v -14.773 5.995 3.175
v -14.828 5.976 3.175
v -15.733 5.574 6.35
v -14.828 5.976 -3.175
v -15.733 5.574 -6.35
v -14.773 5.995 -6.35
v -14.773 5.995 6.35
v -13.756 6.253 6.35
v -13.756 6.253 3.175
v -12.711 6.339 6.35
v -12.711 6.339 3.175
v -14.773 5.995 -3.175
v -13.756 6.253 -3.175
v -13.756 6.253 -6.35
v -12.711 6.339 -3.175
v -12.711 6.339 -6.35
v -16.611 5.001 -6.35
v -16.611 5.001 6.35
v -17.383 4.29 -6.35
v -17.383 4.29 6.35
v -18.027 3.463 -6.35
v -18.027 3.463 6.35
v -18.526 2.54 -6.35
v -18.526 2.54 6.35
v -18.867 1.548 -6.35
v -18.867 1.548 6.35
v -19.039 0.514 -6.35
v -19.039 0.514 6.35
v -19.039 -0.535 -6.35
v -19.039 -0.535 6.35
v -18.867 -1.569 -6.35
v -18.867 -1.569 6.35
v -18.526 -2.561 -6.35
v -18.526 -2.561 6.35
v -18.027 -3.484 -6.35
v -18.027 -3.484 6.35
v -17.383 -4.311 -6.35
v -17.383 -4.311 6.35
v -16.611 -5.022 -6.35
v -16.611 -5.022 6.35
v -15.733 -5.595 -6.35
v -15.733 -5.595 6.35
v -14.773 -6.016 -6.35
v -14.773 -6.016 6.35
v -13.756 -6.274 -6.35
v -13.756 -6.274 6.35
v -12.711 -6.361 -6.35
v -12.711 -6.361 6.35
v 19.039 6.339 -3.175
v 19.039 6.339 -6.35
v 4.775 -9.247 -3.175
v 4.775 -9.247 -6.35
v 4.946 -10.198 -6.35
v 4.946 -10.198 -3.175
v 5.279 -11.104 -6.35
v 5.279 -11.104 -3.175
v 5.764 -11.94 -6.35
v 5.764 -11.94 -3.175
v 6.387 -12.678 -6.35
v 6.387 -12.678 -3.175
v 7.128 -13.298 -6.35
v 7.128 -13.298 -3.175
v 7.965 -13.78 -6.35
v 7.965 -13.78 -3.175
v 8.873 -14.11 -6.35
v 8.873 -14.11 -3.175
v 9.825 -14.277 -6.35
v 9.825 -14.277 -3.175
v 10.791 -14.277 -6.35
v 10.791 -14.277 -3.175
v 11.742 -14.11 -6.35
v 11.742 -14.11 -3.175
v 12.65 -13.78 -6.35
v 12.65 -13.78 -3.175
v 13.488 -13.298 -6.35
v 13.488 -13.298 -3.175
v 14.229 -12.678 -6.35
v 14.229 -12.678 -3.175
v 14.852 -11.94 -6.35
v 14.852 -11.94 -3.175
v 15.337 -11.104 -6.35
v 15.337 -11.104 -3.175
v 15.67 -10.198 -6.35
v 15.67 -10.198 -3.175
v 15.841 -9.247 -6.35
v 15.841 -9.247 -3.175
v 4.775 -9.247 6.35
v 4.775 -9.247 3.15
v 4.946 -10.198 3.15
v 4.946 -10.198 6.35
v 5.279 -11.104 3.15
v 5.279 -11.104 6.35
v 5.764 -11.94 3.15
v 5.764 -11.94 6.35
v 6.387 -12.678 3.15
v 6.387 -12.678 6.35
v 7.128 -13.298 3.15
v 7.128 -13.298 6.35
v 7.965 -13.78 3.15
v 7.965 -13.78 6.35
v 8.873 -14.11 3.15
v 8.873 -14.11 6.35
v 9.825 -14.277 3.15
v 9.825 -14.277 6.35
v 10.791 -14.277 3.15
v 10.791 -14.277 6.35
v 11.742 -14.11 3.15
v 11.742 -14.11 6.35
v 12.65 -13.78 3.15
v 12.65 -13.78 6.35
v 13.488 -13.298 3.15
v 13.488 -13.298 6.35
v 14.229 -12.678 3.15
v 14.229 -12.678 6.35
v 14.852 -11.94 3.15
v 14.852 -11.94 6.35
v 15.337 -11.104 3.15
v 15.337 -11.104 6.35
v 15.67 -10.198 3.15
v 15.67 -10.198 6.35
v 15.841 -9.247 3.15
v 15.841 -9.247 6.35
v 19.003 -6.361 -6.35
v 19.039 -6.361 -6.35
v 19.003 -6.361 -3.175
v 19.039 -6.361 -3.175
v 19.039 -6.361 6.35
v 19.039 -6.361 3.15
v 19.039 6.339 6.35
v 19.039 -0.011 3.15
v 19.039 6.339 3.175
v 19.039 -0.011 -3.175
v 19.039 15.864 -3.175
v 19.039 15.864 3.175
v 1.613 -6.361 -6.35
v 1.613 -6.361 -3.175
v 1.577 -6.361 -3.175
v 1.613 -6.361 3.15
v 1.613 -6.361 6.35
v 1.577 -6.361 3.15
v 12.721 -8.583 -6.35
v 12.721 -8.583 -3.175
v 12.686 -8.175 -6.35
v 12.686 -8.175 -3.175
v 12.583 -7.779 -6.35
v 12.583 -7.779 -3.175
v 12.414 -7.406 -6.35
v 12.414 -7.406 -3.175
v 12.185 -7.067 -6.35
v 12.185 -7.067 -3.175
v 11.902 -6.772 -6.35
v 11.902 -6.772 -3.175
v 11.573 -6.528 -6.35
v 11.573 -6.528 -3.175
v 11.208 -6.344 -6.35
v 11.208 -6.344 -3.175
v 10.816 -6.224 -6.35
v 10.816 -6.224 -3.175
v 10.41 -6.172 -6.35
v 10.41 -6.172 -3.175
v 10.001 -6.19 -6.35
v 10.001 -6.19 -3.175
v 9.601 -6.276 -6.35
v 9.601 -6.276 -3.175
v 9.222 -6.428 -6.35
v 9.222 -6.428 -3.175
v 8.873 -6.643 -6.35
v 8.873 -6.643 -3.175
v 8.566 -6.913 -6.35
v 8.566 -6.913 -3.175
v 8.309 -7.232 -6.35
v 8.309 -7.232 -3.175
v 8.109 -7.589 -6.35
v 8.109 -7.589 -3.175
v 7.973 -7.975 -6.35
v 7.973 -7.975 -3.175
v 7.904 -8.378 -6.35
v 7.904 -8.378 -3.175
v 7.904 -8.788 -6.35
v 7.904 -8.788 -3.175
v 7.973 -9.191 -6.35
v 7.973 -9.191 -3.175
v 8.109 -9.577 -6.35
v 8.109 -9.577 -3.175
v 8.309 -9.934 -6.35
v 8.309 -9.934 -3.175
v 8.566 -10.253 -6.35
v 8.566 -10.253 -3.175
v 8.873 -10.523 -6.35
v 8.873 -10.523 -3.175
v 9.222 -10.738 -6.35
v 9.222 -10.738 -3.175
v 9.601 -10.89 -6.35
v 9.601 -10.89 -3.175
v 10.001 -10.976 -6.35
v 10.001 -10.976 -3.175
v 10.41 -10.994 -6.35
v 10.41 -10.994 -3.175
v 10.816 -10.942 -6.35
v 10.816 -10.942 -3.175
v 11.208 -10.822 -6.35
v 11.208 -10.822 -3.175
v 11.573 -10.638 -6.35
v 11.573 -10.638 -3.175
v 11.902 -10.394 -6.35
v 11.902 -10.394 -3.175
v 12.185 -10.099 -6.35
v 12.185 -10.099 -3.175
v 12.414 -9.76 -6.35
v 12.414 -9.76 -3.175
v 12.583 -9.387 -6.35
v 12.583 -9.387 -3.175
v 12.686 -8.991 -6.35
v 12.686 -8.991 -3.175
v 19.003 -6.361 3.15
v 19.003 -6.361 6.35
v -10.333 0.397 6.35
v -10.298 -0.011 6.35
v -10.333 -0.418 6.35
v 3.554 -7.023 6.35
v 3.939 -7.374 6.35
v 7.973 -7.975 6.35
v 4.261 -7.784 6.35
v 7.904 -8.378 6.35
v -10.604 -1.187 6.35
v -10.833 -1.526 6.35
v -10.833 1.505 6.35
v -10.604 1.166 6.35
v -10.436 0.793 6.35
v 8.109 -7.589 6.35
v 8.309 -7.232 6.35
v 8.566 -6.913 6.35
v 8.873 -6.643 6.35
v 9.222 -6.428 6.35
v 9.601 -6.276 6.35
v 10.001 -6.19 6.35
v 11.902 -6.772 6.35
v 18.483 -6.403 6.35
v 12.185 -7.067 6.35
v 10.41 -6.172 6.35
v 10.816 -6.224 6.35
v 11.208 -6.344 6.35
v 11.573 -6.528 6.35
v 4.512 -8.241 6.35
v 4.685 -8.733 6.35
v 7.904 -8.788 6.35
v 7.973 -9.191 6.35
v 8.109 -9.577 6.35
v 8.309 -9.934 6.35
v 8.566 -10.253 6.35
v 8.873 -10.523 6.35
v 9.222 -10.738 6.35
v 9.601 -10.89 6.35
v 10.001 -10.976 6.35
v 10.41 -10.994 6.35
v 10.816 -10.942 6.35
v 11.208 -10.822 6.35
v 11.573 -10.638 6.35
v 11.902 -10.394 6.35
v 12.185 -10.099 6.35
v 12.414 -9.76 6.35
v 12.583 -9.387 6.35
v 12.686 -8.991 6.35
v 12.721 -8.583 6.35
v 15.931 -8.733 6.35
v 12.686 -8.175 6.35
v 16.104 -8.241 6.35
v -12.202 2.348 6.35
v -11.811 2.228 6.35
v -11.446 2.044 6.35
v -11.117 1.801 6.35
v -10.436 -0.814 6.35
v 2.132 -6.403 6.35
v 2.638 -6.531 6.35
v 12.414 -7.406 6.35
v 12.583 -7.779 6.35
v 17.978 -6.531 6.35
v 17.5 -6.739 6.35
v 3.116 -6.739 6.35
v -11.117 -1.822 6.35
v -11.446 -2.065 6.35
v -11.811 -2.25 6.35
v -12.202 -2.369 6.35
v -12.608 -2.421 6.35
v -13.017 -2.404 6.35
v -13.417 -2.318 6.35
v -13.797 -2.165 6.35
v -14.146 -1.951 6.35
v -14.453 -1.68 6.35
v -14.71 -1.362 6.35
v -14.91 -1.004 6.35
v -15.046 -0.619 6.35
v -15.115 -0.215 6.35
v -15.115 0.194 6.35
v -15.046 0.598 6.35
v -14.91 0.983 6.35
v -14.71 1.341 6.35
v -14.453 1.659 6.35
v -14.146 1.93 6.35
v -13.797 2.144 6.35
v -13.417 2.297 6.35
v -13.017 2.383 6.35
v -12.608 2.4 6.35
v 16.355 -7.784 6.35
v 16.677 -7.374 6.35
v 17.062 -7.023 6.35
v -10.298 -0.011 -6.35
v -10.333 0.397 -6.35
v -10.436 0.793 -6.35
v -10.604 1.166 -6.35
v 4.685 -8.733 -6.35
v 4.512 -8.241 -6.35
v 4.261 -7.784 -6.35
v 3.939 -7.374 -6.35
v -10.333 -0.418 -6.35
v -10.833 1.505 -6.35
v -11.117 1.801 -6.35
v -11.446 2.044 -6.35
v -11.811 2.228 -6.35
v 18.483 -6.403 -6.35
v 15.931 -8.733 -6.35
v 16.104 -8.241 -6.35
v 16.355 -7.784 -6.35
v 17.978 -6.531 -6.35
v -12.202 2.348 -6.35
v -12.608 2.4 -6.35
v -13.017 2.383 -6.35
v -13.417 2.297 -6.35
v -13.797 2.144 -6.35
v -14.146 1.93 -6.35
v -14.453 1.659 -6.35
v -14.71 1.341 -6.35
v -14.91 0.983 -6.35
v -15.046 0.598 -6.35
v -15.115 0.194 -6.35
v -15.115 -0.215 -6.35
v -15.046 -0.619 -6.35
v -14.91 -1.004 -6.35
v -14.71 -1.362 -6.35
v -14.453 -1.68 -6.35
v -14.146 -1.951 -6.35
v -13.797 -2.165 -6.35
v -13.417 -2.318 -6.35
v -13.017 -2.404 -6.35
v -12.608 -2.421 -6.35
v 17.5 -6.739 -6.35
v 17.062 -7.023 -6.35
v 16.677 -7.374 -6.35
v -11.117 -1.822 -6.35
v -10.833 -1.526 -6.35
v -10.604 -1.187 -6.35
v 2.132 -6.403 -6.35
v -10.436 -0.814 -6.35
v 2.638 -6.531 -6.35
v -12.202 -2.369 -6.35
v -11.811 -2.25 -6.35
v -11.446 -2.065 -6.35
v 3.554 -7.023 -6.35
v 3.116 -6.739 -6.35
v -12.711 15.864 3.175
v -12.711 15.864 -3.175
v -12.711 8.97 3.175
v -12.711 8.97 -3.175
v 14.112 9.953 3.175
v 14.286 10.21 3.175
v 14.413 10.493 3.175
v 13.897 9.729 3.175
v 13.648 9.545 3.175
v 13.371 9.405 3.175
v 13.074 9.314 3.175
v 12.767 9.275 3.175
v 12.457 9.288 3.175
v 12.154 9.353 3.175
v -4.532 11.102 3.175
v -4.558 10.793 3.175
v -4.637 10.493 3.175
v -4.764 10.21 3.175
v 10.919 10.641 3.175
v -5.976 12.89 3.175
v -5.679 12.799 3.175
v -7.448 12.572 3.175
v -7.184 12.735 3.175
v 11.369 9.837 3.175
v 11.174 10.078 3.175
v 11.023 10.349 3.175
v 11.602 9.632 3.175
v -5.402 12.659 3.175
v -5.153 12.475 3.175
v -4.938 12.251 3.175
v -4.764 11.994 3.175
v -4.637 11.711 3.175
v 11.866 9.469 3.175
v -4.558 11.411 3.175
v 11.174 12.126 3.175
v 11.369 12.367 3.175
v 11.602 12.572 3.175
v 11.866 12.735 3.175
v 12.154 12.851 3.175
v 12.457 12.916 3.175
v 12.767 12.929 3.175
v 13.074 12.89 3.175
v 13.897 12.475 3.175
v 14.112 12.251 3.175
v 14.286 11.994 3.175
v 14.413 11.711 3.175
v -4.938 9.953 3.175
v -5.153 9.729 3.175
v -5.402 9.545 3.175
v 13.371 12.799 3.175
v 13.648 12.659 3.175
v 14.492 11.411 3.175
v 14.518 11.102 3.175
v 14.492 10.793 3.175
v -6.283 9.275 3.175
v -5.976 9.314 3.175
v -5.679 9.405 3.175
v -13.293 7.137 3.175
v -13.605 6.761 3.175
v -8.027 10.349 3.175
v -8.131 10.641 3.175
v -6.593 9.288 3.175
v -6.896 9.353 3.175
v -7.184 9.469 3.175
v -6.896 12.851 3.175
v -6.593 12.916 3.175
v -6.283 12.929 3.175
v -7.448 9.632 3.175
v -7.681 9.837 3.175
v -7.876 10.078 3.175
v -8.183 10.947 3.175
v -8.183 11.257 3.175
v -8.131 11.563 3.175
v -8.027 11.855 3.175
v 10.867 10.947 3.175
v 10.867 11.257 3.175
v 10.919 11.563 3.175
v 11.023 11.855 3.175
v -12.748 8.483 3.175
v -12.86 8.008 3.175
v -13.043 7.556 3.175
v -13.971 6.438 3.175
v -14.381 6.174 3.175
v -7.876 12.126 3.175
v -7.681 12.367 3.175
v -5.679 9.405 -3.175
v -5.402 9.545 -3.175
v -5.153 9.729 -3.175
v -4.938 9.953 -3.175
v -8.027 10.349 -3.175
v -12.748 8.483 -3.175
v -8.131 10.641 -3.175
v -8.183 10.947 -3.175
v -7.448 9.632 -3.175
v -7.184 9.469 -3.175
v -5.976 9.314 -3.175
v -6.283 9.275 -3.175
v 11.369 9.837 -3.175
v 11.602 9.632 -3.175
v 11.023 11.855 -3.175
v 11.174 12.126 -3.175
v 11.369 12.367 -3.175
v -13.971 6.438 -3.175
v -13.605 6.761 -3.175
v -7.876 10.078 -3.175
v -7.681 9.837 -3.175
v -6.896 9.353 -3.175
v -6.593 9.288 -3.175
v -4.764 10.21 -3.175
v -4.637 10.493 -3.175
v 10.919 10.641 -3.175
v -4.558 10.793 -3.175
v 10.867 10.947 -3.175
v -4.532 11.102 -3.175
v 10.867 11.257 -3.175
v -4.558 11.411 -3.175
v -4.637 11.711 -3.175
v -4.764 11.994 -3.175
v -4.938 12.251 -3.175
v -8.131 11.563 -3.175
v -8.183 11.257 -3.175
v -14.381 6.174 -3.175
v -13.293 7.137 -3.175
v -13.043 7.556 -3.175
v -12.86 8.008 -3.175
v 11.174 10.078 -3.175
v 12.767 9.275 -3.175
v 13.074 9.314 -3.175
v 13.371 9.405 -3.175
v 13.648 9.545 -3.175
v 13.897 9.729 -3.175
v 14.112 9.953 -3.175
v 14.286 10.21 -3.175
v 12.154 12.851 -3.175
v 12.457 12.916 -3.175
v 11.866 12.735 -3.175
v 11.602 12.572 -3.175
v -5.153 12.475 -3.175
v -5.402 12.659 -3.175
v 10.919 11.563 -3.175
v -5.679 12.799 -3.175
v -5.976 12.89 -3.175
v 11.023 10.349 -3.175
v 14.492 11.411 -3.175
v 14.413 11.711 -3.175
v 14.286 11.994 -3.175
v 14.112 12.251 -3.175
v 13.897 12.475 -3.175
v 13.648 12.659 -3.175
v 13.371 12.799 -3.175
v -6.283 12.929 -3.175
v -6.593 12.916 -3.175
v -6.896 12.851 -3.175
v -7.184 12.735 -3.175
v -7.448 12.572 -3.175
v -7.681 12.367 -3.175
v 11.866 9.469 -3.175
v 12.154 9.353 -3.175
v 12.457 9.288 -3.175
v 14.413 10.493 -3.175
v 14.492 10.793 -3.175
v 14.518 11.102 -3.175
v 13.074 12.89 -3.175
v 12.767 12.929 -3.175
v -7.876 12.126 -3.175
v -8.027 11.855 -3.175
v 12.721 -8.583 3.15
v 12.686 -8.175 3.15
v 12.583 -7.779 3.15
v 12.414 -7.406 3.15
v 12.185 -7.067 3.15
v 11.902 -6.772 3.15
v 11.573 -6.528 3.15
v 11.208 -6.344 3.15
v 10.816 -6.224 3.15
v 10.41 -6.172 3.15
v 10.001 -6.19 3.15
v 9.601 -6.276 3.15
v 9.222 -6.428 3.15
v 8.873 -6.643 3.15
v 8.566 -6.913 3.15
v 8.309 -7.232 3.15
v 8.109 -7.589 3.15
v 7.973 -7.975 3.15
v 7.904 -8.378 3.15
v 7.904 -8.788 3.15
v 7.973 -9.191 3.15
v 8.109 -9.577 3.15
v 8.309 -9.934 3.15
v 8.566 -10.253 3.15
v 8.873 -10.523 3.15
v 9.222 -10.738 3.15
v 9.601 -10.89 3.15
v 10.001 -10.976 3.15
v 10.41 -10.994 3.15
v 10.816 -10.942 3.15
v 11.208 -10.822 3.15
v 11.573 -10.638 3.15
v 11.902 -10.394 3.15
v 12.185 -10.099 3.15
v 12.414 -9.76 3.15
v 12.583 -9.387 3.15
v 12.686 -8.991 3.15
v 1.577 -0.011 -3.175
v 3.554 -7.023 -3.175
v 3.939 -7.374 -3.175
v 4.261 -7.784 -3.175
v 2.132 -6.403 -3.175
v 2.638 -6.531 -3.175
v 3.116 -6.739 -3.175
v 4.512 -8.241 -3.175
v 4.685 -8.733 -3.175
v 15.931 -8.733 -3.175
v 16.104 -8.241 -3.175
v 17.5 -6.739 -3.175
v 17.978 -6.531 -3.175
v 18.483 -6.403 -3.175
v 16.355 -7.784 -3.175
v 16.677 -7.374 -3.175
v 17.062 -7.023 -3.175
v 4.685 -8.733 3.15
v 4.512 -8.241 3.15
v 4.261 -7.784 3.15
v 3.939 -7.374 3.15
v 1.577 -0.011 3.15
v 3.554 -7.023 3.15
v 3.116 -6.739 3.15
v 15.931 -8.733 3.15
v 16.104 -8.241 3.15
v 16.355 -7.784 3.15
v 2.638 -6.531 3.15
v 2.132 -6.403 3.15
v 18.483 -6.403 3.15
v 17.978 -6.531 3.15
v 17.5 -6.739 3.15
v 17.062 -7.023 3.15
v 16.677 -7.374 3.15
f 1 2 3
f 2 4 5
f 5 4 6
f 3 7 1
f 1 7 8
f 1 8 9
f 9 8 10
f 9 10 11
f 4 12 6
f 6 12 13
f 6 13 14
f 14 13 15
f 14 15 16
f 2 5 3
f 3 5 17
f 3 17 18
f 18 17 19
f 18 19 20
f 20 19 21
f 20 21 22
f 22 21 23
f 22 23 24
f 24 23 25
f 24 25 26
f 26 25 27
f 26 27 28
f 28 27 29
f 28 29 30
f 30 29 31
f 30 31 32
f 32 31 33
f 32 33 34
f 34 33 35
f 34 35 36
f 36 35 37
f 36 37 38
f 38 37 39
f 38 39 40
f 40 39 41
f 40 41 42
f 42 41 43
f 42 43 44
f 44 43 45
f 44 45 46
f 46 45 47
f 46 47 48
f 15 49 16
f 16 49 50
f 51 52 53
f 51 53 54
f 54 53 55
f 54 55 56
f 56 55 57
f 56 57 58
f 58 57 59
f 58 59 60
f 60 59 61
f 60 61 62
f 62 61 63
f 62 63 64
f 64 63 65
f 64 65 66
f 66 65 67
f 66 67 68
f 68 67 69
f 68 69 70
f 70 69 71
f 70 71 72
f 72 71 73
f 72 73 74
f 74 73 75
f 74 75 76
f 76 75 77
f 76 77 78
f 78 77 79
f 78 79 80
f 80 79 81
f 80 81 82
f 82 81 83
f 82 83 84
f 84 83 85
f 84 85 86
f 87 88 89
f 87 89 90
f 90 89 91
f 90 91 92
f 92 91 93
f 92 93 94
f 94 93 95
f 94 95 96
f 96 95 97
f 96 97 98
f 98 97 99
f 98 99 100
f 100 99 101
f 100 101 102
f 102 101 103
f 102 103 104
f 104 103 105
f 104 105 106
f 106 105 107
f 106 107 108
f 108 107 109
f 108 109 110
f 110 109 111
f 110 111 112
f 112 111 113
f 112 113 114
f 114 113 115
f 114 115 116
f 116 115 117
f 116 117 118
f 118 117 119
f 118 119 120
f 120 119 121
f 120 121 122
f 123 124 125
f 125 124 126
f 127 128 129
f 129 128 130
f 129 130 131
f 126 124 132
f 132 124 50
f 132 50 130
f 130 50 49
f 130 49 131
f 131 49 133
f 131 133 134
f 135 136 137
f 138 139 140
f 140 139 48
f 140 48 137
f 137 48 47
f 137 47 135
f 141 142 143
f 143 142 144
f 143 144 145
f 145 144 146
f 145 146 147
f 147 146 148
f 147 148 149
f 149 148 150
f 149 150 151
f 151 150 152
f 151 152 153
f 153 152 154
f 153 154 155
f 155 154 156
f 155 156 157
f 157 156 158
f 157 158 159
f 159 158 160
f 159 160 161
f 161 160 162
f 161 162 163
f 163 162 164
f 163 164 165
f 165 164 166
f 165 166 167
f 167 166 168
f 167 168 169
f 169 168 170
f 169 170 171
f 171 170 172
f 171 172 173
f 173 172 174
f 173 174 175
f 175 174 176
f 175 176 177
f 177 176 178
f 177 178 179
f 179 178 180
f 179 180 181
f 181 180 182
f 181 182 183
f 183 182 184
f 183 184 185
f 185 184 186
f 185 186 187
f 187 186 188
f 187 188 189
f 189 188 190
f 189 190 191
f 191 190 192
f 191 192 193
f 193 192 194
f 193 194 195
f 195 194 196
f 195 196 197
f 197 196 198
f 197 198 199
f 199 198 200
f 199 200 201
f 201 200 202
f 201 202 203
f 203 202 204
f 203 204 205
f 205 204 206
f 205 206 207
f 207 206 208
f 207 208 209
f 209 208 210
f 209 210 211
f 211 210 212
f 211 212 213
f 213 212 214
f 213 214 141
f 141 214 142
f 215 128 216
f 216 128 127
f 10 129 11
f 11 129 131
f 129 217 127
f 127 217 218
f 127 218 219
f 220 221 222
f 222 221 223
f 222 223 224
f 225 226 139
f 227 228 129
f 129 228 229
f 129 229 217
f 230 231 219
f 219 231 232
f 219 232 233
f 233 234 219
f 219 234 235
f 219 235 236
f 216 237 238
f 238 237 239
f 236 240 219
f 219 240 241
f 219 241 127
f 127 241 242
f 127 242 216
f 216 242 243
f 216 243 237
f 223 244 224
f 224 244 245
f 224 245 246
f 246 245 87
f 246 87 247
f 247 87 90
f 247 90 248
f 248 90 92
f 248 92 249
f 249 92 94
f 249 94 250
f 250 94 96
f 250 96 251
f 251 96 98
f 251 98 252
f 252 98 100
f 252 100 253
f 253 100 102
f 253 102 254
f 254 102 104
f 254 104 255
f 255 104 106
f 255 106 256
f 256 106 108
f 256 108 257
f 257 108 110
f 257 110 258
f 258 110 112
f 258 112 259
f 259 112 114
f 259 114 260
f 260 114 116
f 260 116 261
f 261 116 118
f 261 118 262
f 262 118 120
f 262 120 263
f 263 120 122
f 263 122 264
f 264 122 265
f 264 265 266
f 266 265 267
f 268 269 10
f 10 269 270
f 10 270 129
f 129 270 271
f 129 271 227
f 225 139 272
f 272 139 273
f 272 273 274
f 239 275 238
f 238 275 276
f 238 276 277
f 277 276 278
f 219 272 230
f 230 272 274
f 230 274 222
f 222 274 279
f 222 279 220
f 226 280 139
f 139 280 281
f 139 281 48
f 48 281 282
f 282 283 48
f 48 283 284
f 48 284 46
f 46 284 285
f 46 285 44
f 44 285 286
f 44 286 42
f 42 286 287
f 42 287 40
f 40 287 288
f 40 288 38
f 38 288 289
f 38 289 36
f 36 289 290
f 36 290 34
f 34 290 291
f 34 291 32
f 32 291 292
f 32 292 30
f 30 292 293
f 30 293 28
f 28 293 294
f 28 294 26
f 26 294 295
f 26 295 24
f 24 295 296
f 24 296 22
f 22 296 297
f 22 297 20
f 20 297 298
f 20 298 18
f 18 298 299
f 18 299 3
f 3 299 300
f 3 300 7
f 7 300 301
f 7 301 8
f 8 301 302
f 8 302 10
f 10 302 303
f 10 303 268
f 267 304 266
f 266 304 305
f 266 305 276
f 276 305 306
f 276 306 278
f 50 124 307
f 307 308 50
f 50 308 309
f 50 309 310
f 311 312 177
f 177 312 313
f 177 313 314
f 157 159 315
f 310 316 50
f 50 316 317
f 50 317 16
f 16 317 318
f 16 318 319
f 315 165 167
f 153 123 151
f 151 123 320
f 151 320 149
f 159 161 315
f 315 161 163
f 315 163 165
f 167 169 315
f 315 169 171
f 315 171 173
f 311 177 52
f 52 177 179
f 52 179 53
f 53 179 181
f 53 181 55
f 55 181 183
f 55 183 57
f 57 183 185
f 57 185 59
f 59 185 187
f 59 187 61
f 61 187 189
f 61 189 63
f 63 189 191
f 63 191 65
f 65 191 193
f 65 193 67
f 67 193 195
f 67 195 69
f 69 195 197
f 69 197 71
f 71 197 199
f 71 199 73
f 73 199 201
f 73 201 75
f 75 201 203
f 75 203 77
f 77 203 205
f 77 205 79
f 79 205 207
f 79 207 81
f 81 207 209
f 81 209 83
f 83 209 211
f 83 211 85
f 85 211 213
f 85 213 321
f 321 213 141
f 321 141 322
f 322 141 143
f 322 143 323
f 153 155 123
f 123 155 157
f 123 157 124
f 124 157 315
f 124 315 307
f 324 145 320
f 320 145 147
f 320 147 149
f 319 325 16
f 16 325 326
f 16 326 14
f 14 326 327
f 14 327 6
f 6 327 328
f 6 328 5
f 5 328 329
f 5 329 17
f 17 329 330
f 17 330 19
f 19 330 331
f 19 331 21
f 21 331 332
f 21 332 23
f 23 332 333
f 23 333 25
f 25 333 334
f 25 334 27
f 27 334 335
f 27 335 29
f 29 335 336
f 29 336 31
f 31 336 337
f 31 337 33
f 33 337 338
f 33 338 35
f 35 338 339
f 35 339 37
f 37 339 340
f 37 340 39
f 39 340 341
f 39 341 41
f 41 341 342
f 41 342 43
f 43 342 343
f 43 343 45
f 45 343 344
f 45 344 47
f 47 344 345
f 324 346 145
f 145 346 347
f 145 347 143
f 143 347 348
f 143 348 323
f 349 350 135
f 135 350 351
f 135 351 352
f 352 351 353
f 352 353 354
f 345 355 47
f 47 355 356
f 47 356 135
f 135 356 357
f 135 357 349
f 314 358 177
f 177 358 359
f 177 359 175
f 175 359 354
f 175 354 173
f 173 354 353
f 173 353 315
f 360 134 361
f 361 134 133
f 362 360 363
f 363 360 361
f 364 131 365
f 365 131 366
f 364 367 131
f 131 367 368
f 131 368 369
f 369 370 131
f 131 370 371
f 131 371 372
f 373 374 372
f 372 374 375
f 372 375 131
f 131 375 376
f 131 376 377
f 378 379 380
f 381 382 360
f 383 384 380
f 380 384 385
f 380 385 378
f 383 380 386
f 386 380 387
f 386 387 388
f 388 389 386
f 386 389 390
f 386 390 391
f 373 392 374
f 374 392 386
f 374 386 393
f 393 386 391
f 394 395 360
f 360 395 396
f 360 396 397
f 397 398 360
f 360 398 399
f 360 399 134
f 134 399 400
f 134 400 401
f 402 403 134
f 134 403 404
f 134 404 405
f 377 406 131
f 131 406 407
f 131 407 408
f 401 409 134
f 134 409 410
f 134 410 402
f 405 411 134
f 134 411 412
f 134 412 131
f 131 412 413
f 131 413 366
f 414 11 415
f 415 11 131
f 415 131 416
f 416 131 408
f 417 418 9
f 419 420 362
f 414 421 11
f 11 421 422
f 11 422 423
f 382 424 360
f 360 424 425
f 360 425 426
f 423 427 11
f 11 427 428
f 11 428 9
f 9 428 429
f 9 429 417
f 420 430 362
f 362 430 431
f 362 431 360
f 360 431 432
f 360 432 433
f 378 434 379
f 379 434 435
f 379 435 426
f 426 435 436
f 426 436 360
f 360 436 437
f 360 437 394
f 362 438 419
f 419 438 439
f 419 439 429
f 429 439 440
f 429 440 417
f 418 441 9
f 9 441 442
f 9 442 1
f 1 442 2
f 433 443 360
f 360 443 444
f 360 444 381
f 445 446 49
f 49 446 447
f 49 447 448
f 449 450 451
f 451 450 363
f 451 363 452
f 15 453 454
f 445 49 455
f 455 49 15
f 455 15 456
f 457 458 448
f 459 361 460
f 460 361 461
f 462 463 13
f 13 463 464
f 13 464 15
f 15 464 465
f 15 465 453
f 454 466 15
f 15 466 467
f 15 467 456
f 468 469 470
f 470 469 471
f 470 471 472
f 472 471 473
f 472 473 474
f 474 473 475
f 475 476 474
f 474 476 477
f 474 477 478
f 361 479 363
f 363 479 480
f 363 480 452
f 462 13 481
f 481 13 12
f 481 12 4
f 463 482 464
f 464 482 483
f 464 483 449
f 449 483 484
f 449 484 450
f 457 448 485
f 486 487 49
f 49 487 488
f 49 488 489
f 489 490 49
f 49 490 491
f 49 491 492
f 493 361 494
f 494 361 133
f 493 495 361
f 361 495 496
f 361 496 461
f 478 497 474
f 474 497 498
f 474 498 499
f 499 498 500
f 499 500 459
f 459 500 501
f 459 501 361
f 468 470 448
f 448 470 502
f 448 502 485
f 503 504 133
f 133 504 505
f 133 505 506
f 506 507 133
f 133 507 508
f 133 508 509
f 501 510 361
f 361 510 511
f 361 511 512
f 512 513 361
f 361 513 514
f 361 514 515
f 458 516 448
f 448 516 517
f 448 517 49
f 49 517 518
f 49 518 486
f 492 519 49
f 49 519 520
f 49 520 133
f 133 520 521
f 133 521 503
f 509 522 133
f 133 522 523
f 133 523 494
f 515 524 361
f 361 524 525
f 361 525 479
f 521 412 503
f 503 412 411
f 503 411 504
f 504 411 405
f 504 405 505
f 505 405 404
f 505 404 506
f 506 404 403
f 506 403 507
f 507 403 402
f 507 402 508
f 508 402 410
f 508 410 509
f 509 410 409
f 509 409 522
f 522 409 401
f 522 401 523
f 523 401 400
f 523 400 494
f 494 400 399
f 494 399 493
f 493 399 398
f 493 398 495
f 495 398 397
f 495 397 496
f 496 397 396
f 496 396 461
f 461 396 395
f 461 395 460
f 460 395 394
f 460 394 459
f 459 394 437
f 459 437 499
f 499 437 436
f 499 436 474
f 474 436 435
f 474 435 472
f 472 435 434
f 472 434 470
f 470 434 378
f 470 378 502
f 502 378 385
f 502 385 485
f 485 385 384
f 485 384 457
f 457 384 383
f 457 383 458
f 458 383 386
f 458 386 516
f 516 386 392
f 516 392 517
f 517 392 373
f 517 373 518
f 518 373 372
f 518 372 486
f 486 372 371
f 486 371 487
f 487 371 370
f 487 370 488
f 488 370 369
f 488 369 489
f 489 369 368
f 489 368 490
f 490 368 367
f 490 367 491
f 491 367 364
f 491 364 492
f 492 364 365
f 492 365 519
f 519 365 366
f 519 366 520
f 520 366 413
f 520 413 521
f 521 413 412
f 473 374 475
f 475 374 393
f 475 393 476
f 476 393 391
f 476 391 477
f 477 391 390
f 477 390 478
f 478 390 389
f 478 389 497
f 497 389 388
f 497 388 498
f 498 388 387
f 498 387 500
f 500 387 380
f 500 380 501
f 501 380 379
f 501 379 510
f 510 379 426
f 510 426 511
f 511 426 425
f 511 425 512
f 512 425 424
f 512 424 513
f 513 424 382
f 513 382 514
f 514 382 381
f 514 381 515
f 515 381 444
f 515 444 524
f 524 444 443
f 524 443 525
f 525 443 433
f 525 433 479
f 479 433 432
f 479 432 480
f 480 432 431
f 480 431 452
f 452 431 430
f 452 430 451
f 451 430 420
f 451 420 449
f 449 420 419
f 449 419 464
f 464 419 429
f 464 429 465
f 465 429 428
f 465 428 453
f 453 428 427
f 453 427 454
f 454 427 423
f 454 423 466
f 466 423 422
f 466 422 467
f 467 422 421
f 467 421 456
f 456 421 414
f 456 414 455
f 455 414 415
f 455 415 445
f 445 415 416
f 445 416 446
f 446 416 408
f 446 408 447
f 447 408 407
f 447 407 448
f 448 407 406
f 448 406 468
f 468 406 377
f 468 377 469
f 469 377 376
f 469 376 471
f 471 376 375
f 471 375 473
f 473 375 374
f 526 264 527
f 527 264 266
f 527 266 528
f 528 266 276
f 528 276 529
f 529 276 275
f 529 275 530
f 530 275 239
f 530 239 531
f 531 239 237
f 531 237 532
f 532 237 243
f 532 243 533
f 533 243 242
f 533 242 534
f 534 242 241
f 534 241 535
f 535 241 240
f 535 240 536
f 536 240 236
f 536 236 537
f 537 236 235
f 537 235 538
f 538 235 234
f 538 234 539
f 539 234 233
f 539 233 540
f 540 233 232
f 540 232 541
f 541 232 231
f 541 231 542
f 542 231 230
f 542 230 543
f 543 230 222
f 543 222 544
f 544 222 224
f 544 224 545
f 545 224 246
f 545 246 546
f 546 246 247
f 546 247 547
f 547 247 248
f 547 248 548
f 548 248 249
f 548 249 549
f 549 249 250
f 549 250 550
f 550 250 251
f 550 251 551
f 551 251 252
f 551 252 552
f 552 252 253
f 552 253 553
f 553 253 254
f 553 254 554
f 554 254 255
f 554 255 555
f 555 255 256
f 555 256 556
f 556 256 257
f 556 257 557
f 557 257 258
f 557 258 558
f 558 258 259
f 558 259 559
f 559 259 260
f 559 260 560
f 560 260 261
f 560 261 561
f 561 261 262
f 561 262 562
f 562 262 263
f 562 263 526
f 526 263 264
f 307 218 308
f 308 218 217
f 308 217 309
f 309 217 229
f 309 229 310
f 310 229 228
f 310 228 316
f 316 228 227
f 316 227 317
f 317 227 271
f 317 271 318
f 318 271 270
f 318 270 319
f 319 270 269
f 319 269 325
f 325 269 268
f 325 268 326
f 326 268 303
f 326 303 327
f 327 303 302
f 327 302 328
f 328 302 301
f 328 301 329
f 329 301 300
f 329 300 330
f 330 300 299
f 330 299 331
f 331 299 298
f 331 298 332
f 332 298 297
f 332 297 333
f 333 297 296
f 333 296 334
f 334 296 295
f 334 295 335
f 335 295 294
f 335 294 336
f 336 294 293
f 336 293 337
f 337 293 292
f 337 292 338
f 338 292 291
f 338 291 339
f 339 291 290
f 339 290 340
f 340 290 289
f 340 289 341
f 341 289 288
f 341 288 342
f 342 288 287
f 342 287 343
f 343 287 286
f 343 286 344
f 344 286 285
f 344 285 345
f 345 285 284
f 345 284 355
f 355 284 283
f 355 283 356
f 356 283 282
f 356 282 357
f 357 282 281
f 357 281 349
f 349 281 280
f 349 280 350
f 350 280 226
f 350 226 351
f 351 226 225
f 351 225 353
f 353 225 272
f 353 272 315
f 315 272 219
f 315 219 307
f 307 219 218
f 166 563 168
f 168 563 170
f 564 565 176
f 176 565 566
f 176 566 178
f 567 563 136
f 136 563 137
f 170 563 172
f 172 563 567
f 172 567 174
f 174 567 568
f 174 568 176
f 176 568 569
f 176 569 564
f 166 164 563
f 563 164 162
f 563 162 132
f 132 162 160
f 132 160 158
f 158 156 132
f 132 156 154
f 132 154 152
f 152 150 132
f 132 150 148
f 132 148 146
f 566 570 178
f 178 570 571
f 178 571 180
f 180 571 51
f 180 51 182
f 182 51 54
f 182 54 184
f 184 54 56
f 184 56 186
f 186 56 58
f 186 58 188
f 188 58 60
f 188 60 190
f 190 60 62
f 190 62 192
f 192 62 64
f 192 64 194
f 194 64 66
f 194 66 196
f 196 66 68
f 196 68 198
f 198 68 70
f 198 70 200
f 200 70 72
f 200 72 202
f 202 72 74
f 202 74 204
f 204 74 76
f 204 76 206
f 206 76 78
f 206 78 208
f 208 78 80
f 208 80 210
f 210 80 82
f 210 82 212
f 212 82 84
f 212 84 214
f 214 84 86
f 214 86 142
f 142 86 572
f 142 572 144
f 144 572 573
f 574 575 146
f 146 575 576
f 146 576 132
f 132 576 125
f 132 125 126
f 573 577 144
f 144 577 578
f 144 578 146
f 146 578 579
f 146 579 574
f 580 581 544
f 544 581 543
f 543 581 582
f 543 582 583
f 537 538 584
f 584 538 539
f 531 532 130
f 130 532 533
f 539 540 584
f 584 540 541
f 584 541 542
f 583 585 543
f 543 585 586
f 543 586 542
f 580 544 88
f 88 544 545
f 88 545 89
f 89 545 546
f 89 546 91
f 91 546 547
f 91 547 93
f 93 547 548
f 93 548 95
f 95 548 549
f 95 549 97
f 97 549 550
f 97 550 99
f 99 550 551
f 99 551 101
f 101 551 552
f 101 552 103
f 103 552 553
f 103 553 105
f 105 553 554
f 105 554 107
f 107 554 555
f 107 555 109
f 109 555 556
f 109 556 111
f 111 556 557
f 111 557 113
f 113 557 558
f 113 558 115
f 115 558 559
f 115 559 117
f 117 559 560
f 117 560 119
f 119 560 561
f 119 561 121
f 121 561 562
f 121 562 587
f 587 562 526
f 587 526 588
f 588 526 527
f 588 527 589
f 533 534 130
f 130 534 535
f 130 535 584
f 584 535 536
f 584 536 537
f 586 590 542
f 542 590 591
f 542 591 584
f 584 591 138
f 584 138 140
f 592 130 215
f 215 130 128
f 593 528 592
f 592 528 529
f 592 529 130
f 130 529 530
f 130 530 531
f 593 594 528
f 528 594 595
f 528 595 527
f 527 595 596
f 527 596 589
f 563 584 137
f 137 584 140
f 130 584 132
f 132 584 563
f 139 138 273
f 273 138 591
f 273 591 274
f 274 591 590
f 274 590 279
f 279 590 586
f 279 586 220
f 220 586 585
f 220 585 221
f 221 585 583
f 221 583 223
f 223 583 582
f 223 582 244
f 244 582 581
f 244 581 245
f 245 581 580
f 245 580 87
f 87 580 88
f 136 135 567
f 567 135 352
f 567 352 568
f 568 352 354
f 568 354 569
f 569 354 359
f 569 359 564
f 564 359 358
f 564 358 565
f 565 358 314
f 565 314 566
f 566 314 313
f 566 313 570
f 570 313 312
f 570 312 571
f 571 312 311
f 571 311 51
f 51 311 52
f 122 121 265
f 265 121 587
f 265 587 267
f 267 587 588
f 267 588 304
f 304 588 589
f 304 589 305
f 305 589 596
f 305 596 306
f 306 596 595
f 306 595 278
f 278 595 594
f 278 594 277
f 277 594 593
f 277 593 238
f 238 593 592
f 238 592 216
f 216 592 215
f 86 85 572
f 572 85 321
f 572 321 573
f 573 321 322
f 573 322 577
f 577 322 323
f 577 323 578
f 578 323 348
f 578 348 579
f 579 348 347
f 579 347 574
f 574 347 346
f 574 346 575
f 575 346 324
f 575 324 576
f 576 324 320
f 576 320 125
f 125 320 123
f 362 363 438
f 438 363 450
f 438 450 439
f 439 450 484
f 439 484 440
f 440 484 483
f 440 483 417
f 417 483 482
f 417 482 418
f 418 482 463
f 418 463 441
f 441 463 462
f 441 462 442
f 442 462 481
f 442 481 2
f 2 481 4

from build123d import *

# Parameters (mm, degrees)
SKETCH1_W                             = 38.1
SKETCH1_H                             = 12.699999999999998
BOSS_EXTRUDE1_DEPTH                   = 6.35
BOSS_EXTRUDE2_DEPTH                   = 3.175
F_6_CLEARANCE_HOLE1_D                 = 3.6576
F_3_16_0_1875_CLEARANCE_DOWEL_HOLE1_D = 4.826
CUT_EXTRUDE3_DEPTH                    = 3.1496
CUT_EXTRUDE3_DEPTH_BACK               = 3.175
SKETCH8_W                             = 17.4625
SKETCH8_H                             = 14.287499999999998
FILLET2_RADIUS                        = 5.55625
FILLET2_LENGTH                        = 3.2004
FILLET3_RADIUS                        = 5.55625
FILLET3_LENGTH                        = 3.175
FILLET5_R                             = 3.175
FILLET7_R                             = 6.35
FILLET8_R                             = 3.175


# Some blends are built 0.0001 mm under size
with BuildPart() as part:
    # Sketch1 → Boss-Extrude1 (new, symmetric)
    with BuildSketch(Plane.XY):
        Polygon((15.875, -14.287499999999998), (15.875, -6.349999999999994), (4.762500000000001, -6.35), (4.762500000000001, -14.287499999999996), align=None)
        Rectangle(SKETCH1_W, SKETCH1_H)
    extrude(amount=BOSS_EXTRUDE1_DEPTH, both=True)

    # Sketch2 → Boss-Extrude2 (add, symmetric)
    with BuildSketch(Plane.XY):
        Polygon((19.05, 6.35), (-12.7, 6.349999999999996), (-12.7, 15.874999999999996), (19.05, 15.875), align=None)
    extrude(amount=BOSS_EXTRUDE2_DEPTH, both=True)

    # #6 Clearance Hole1 (through all)
    with Locations(Plane.XY.offset(3.175)):
        with Locations((-6.35, 11.1125), (12.7, 11.1125)):
            Hole(F_6_CLEARANCE_HOLE1_D / 2)

    # 3/16 (0.1875) Clearance Dowel Hole1 (through all)
    with Locations(Plane.XY.offset(6.35)):
        with Locations((-12.7, 0), (10.31875, -8.5725)):
            Hole(F_3_16_0_1875_CLEARANCE_DOWEL_HOLE1_D / 2)

    # Sketch8 → Cut-Extrude3 (cut, two sides: drawn at the far end of the back side and taken through both)
    with BuildSketch(Plane.XY.offset(-CUT_EXTRUDE3_DEPTH_BACK)):
        with Locations((10.318750000000001, -7.143749999999999)):
            Rectangle(SKETCH8_W, SKETCH8_H)
    extrude(amount=CUT_EXTRUDE3_DEPTH + CUT_EXTRUDE3_DEPTH_BACK, mode=Mode.SUBTRACT)

    # Fillet2: full round fillet: the end face becomes a half cylinder, R = half its width
    fillet2_face = Plane((10.31875, -14.2875, 4.7498), x_dir=(0, 0, 1), z_dir=(0, -1, 0))  # on the end face: x along it, z out of the body
    fillet2_slab = fillet2_face.offset(-FILLET2_RADIUS / 2) * Box(FILLET2_LENGTH, 2 * FILLET2_RADIUS, FILLET2_RADIUS, mode=Mode.PRIVATE)  # the body's end, R deep
    fillet2_round = Plane((10.31875, -8.73125, 4.7498), x_dir=(0, -1, 0), z_dir=(0, 0, 1)) * Cylinder(FILLET2_RADIUS, FILLET2_LENGTH, mode=Mode.PRIVATE)  # its axis R under the face
    add(fillet2_slab - fillet2_round, mode=Mode.SUBTRACT)

    # Fillet3: full round fillet: the end face becomes a half cylinder, R = half its width
    fillet3_face = Plane((10.31875, -14.2875, -4.7625), x_dir=(0, 0, 1), z_dir=(0, -1, 0))  # on the end face: x along it, z out of the body
    fillet3_slab = fillet3_face.offset(-FILLET3_RADIUS / 2) * Box(FILLET3_LENGTH, 2 * FILLET3_RADIUS, FILLET3_RADIUS, mode=Mode.PRIVATE)  # the body's end, R deep
    fillet3_round = Plane((10.31875, -8.73125, -4.7625), x_dir=(0, -1, 0), z_dir=(0, 0, 1)) * Cylinder(FILLET3_RADIUS, FILLET3_LENGTH, mode=Mode.PRIVATE)  # its axis R under the face
    add(fillet3_slab - fillet3_round, mode=Mode.SUBTRACT)

    # Fillet5
    fillet5_edges = [part.edges().sort_by_distance(p)[0] for p in [
        (15.875, -6.349999999999997, 4.7498),
        (15.875, -6.349999999999997, -4.762499999999999),
        (4.762500000000001, -6.349999999999998, -4.762499999999999),
        (4.762500000000001, -6.349999999999998, 4.7498),
    ]]
    fillet(fillet5_edges, radius=FILLET5_R - 0.0001)  # a hair under: the kernel refuses the full size

    # Fillet7
    fillet7_edges = [part.edges().sort_by_distance(p)[0] for p in [
        (-19.05, -6.35, 0),
        (-19.05, 6.35, 0),
    ]]
    fillet(fillet7_edges, radius=FILLET7_R - 0.0001)  # a hair under: the kernel refuses the full size

    # Fillet8
    # the kernel refuses this fillet: 3.175 mm, written as the material it adds along each edge
    with BuildSketch(Plane(origin=(-12.7, 6.349999999999996, 3.175), x_dir=(-0.9856005187452213, -0.16909055990548677, 0), z_dir=(0, 0, -1))) as fillet8_piece_1:
        with BuildLine():
            CenterArc((2.6845252143088953, 3.1292731923549355), FILLET8_R, 189.73494650787575, 70.5292047157078)
            Line((-0.4447564327071806, 2.5924106646550134), (-0.7576845974087891, 2.5387244118850214))
            Line((-0.7576845974087891, 2.5387244118850214), (-0.3129281647016085, -0.05368625276999218))
            Line((-0.3129281647016085, -0.05368625276999218), (0.05368625276999203, -0.31292816470160767))
            ThreePointArc((0.05368625276999203, -0.31292816470160767), (0.05378481282186907, -0.3129112556456122), (2.0939222275177753, -0.31292731923549344))
            Line((2.0939222275177753, -0.31292731923549344), (2.1476134081351503, -2e-17))
        make_face()
    extrude(amount=6.35)


solid = part.part
